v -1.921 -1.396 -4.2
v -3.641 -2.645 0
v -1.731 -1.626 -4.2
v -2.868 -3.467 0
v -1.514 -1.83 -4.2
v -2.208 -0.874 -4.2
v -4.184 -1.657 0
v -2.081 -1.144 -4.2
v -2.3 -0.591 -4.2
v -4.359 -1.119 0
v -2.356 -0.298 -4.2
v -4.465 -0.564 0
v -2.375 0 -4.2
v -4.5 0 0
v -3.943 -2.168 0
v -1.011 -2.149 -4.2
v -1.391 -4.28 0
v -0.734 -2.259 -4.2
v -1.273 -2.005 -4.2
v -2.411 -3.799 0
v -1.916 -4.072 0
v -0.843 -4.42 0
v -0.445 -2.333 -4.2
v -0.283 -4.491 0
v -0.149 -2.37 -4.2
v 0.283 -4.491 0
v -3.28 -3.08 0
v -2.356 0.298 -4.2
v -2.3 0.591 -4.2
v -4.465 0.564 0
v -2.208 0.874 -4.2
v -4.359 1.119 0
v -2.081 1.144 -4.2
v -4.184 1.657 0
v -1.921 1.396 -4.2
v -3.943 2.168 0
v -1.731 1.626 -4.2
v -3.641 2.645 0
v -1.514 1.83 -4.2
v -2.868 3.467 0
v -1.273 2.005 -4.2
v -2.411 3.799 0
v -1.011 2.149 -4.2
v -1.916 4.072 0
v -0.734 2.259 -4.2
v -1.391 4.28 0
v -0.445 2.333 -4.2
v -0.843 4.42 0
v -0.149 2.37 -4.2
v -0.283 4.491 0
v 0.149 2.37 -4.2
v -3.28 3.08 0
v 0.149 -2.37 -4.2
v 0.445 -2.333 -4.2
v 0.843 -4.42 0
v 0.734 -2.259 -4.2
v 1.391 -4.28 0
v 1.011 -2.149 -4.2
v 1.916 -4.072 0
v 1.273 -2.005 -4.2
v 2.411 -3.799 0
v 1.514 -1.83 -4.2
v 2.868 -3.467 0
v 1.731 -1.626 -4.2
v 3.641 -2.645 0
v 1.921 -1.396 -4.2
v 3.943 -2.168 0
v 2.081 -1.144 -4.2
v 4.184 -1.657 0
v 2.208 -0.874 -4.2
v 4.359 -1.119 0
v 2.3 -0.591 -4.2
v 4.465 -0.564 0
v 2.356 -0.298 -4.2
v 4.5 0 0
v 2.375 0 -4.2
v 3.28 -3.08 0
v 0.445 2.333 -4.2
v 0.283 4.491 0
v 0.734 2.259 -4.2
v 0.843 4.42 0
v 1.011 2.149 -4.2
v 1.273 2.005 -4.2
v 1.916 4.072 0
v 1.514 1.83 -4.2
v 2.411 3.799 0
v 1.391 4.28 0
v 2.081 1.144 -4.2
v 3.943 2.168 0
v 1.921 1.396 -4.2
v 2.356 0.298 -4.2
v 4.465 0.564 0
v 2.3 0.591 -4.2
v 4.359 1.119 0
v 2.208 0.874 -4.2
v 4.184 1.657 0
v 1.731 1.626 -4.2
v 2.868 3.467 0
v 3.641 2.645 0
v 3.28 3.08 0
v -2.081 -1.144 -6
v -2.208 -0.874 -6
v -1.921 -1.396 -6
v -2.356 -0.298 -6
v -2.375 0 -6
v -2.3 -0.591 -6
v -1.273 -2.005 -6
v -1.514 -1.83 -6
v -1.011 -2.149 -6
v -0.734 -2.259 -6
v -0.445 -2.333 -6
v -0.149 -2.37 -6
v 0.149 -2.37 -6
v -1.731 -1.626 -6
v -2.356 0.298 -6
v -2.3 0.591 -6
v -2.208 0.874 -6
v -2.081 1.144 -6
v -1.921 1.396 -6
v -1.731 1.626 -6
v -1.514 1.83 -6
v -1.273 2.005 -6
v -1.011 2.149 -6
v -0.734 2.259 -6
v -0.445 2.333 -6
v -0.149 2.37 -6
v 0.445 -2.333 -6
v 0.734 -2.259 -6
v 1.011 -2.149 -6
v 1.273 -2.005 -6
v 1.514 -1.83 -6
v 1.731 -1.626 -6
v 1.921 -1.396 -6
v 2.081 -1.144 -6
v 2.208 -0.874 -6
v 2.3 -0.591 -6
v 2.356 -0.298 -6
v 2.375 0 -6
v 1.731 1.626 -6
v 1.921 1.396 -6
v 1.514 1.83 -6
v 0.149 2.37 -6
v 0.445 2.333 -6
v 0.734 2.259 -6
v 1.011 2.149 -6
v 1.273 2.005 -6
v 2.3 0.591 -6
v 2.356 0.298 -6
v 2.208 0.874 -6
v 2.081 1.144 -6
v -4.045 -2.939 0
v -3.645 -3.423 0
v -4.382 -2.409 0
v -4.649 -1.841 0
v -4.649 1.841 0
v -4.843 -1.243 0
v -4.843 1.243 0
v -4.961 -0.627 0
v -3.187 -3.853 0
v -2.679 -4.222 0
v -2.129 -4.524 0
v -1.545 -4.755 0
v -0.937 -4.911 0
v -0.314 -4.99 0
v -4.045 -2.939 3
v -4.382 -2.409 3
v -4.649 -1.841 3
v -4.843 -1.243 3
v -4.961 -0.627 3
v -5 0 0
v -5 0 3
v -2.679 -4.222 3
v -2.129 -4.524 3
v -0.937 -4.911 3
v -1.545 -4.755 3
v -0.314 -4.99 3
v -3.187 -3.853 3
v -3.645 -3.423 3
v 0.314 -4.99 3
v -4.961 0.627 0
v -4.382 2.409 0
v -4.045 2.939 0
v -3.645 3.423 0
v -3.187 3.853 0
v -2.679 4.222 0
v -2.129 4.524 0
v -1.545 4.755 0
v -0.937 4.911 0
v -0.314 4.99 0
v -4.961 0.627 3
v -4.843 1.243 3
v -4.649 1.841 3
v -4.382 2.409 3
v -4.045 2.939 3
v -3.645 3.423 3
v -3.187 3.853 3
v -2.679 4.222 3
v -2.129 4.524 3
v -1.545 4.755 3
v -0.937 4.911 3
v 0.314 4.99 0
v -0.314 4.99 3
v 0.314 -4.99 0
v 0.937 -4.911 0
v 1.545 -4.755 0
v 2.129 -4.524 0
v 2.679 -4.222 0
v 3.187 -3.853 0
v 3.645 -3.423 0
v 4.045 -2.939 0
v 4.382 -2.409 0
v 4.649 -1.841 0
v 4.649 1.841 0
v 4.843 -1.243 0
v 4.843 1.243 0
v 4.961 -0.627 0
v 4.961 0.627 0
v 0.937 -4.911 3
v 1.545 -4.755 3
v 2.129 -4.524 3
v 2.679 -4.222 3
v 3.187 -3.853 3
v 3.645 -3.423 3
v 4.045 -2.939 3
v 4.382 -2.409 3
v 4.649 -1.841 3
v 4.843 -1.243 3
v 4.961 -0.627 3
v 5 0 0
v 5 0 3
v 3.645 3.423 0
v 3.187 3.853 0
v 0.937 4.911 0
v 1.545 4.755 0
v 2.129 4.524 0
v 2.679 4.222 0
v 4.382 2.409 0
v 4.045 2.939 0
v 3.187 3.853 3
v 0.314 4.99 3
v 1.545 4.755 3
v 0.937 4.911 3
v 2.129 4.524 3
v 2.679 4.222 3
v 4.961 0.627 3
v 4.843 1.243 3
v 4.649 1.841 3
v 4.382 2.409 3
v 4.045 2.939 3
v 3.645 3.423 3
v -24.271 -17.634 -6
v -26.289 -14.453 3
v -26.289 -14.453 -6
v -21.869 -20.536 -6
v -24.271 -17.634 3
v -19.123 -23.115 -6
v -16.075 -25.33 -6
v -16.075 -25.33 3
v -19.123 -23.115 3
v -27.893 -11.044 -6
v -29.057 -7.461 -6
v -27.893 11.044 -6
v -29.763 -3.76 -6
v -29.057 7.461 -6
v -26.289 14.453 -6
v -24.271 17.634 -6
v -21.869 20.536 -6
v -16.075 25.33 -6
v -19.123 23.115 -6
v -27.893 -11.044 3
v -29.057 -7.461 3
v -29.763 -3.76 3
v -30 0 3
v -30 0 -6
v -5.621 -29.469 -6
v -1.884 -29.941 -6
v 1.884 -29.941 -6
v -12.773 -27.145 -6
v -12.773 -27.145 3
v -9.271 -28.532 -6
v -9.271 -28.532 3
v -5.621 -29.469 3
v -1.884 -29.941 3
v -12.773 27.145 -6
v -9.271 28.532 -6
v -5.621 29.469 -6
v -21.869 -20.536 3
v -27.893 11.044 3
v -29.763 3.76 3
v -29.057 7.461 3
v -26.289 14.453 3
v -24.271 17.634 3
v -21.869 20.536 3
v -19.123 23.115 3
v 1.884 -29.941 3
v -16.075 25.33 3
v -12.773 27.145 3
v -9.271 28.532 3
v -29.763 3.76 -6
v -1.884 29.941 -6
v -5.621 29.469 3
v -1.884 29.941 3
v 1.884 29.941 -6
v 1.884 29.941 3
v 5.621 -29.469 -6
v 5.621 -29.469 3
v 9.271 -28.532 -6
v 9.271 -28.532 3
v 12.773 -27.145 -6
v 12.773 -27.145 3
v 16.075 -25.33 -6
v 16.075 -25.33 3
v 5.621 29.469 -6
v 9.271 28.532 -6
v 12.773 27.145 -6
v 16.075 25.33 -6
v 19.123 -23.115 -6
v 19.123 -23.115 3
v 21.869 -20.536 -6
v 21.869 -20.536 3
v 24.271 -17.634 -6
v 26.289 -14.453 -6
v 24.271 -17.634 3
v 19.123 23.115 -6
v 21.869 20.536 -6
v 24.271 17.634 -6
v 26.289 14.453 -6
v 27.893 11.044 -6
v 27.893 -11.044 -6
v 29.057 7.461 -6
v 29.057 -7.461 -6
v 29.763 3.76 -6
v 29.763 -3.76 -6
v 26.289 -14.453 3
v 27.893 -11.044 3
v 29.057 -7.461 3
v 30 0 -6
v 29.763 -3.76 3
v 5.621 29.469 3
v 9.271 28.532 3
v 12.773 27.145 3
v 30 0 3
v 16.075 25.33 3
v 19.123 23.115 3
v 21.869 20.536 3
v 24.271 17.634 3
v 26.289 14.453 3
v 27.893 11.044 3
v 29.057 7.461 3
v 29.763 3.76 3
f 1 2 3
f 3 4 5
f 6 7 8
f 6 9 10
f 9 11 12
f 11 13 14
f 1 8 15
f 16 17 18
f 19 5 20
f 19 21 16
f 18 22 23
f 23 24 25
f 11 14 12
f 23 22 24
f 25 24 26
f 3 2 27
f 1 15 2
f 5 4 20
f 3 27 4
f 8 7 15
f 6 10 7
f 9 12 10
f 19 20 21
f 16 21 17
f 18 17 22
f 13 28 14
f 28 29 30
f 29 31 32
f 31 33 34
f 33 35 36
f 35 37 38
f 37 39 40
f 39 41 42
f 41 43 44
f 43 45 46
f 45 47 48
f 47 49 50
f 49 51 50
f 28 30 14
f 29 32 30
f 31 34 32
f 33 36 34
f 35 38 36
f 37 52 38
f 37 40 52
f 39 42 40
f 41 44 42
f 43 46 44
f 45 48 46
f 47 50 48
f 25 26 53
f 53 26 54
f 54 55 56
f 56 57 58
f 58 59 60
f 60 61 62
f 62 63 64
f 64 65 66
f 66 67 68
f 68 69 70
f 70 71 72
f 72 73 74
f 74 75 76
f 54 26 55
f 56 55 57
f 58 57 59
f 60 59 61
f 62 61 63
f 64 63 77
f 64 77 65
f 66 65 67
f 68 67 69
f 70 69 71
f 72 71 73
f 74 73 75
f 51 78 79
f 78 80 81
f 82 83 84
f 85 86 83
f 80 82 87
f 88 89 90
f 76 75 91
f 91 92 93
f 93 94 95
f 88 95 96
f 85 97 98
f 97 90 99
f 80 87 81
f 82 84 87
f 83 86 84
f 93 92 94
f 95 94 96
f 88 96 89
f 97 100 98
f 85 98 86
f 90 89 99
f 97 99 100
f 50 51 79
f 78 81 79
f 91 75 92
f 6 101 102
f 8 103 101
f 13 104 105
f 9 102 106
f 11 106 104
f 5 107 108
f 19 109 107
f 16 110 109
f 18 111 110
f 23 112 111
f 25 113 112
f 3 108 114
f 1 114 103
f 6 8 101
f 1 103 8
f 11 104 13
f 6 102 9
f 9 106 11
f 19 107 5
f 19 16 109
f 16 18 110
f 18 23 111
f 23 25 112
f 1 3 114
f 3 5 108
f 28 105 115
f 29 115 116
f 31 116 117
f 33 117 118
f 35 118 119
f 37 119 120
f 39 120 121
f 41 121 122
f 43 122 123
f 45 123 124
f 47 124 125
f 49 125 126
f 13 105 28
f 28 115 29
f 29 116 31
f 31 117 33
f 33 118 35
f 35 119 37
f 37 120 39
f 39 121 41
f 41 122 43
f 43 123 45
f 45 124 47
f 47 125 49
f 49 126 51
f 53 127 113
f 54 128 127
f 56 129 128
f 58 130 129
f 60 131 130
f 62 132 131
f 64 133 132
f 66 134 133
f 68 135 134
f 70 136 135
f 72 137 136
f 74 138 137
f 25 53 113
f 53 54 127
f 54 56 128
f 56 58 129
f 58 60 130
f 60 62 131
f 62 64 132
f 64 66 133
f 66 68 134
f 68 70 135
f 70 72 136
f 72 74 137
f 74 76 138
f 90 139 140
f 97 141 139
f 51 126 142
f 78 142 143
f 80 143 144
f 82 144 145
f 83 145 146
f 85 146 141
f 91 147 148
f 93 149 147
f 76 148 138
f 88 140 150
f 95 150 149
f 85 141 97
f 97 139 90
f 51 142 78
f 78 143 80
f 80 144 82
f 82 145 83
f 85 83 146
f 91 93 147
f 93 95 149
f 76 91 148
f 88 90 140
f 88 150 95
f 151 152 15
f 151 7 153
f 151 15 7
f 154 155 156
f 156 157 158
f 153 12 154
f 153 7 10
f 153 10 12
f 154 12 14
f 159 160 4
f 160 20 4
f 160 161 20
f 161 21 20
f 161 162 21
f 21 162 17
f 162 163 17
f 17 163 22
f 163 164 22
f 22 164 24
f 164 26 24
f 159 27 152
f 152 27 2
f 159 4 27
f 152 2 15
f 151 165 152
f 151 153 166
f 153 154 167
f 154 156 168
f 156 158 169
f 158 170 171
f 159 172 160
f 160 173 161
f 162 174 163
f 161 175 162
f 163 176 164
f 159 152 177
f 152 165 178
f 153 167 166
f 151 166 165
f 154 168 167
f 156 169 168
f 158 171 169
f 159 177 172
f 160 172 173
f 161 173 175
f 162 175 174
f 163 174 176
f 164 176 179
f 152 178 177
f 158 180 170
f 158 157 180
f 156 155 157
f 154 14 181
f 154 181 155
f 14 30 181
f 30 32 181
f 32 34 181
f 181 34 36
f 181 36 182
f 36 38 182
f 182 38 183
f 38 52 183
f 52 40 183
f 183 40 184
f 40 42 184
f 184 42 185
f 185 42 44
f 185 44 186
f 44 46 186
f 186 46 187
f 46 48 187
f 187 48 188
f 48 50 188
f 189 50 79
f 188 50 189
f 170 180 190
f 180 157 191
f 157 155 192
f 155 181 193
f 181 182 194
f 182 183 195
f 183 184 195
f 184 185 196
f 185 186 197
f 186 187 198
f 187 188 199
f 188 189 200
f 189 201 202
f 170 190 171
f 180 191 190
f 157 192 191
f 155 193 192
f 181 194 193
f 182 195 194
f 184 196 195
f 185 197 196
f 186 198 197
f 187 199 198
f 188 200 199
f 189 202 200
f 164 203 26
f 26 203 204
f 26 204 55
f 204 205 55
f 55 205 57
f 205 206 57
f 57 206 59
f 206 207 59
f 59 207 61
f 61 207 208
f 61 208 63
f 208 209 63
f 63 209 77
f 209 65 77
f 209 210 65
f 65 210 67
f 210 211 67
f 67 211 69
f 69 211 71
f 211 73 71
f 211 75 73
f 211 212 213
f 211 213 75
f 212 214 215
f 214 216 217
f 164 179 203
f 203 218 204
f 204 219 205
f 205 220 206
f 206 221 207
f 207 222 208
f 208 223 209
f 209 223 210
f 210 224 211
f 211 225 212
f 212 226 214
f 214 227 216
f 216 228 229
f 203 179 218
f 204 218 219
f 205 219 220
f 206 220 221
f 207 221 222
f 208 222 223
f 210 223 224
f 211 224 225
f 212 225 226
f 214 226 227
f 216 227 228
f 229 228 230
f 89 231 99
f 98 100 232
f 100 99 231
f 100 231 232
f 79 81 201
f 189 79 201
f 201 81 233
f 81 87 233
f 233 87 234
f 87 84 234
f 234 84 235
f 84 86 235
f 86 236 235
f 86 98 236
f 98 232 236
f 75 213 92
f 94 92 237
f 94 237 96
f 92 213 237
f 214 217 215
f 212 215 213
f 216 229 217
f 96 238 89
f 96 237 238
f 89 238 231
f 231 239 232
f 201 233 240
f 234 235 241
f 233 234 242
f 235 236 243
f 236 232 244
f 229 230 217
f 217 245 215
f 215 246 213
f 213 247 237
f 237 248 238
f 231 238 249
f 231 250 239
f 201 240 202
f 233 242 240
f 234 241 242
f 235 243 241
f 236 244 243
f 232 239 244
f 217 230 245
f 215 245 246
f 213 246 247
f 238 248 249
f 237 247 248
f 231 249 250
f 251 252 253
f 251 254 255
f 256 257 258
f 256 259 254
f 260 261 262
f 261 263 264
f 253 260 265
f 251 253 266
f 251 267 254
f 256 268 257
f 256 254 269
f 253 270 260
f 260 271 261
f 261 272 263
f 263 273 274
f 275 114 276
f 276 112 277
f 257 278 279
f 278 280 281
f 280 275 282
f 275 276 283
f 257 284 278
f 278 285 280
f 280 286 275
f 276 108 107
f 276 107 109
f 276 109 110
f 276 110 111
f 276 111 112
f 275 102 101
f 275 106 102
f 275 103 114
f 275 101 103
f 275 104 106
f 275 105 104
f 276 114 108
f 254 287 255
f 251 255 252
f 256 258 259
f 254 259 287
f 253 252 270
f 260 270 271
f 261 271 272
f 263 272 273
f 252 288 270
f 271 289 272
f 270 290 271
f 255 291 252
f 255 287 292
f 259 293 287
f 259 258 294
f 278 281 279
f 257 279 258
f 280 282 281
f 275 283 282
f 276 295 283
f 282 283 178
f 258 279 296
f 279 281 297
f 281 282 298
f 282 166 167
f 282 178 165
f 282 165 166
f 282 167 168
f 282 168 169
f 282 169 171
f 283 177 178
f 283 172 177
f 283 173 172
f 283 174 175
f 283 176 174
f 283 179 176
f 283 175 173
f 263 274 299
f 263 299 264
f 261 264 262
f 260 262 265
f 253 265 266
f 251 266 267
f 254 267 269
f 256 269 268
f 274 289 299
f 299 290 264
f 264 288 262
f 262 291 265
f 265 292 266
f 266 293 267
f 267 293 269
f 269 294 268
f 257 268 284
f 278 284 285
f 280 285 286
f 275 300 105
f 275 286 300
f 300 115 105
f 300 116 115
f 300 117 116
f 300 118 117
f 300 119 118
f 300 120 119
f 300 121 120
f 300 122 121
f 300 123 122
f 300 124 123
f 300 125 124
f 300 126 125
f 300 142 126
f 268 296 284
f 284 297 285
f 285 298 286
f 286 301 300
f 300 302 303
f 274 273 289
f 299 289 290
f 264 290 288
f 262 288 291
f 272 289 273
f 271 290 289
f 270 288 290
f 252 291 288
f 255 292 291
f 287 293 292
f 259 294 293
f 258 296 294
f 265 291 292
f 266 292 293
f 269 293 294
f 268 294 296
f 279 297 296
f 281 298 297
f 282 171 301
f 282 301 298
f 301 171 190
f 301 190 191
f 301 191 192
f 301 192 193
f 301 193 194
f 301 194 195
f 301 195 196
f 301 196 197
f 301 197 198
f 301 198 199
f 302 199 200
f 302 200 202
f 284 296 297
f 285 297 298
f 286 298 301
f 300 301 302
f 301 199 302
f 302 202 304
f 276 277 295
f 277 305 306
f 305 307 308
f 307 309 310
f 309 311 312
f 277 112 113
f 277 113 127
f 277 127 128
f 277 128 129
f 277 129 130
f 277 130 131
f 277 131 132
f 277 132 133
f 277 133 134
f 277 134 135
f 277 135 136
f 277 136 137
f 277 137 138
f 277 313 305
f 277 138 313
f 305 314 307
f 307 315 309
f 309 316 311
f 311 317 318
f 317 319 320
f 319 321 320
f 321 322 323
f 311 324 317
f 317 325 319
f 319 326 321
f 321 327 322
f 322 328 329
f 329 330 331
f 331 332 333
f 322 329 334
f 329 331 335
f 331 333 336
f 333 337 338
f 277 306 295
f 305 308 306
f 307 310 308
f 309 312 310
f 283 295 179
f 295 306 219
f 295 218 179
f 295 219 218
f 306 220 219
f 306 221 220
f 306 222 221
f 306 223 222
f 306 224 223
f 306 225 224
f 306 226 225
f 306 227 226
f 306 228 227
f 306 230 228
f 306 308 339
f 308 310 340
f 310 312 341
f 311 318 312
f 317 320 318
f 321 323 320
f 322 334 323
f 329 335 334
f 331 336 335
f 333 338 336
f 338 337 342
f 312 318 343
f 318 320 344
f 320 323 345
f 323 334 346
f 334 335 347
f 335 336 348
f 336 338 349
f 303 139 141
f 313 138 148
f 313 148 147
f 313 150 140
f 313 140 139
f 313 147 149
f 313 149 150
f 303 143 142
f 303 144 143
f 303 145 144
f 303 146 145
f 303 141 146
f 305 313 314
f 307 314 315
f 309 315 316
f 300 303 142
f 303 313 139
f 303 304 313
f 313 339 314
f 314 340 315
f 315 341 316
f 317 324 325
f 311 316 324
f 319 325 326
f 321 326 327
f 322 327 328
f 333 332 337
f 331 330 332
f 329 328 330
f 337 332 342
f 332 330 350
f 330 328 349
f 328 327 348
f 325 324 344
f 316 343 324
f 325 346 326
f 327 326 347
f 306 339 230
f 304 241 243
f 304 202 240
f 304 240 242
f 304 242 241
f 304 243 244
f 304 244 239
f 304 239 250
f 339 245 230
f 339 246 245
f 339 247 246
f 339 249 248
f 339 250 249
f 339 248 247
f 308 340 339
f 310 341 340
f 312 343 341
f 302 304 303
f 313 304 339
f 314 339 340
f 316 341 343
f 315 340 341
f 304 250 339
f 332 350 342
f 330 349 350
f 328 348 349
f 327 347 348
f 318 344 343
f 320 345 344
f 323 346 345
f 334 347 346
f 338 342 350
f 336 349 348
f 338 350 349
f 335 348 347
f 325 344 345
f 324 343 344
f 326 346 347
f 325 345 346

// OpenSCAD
$fn = 50;

difference() {
	union() {
		translate(v = [0, 0, -6.0]) {
			cylinder(h = 9, r = 30.0);
		}
	}
	union() {
		translate(v = [0, 0, 0]) {
			rotate(a = [0, 0, 0]) {
				difference() {
					union() {
						translate(v = [0, 0, -9.0]) {
							cylinder(h = 9, r = 2.25);
						}
						translate(v = [0, 0, -4.2]) {
							cylinder(h = 4.2, r1 = 2.375, r2 = 4.5);
						}
						translate(v = [0, 0, -9.0]) {
							cylinder(h = 9, r = 2.375);
						}
						translate(v = [0, 0, -9.0]) {
							cylinder(h = 9, r = 2.25);
						}
					}
					union();
				}
			}
		}
		#cylinder(h = 3, r = 5.0);
	}
}
